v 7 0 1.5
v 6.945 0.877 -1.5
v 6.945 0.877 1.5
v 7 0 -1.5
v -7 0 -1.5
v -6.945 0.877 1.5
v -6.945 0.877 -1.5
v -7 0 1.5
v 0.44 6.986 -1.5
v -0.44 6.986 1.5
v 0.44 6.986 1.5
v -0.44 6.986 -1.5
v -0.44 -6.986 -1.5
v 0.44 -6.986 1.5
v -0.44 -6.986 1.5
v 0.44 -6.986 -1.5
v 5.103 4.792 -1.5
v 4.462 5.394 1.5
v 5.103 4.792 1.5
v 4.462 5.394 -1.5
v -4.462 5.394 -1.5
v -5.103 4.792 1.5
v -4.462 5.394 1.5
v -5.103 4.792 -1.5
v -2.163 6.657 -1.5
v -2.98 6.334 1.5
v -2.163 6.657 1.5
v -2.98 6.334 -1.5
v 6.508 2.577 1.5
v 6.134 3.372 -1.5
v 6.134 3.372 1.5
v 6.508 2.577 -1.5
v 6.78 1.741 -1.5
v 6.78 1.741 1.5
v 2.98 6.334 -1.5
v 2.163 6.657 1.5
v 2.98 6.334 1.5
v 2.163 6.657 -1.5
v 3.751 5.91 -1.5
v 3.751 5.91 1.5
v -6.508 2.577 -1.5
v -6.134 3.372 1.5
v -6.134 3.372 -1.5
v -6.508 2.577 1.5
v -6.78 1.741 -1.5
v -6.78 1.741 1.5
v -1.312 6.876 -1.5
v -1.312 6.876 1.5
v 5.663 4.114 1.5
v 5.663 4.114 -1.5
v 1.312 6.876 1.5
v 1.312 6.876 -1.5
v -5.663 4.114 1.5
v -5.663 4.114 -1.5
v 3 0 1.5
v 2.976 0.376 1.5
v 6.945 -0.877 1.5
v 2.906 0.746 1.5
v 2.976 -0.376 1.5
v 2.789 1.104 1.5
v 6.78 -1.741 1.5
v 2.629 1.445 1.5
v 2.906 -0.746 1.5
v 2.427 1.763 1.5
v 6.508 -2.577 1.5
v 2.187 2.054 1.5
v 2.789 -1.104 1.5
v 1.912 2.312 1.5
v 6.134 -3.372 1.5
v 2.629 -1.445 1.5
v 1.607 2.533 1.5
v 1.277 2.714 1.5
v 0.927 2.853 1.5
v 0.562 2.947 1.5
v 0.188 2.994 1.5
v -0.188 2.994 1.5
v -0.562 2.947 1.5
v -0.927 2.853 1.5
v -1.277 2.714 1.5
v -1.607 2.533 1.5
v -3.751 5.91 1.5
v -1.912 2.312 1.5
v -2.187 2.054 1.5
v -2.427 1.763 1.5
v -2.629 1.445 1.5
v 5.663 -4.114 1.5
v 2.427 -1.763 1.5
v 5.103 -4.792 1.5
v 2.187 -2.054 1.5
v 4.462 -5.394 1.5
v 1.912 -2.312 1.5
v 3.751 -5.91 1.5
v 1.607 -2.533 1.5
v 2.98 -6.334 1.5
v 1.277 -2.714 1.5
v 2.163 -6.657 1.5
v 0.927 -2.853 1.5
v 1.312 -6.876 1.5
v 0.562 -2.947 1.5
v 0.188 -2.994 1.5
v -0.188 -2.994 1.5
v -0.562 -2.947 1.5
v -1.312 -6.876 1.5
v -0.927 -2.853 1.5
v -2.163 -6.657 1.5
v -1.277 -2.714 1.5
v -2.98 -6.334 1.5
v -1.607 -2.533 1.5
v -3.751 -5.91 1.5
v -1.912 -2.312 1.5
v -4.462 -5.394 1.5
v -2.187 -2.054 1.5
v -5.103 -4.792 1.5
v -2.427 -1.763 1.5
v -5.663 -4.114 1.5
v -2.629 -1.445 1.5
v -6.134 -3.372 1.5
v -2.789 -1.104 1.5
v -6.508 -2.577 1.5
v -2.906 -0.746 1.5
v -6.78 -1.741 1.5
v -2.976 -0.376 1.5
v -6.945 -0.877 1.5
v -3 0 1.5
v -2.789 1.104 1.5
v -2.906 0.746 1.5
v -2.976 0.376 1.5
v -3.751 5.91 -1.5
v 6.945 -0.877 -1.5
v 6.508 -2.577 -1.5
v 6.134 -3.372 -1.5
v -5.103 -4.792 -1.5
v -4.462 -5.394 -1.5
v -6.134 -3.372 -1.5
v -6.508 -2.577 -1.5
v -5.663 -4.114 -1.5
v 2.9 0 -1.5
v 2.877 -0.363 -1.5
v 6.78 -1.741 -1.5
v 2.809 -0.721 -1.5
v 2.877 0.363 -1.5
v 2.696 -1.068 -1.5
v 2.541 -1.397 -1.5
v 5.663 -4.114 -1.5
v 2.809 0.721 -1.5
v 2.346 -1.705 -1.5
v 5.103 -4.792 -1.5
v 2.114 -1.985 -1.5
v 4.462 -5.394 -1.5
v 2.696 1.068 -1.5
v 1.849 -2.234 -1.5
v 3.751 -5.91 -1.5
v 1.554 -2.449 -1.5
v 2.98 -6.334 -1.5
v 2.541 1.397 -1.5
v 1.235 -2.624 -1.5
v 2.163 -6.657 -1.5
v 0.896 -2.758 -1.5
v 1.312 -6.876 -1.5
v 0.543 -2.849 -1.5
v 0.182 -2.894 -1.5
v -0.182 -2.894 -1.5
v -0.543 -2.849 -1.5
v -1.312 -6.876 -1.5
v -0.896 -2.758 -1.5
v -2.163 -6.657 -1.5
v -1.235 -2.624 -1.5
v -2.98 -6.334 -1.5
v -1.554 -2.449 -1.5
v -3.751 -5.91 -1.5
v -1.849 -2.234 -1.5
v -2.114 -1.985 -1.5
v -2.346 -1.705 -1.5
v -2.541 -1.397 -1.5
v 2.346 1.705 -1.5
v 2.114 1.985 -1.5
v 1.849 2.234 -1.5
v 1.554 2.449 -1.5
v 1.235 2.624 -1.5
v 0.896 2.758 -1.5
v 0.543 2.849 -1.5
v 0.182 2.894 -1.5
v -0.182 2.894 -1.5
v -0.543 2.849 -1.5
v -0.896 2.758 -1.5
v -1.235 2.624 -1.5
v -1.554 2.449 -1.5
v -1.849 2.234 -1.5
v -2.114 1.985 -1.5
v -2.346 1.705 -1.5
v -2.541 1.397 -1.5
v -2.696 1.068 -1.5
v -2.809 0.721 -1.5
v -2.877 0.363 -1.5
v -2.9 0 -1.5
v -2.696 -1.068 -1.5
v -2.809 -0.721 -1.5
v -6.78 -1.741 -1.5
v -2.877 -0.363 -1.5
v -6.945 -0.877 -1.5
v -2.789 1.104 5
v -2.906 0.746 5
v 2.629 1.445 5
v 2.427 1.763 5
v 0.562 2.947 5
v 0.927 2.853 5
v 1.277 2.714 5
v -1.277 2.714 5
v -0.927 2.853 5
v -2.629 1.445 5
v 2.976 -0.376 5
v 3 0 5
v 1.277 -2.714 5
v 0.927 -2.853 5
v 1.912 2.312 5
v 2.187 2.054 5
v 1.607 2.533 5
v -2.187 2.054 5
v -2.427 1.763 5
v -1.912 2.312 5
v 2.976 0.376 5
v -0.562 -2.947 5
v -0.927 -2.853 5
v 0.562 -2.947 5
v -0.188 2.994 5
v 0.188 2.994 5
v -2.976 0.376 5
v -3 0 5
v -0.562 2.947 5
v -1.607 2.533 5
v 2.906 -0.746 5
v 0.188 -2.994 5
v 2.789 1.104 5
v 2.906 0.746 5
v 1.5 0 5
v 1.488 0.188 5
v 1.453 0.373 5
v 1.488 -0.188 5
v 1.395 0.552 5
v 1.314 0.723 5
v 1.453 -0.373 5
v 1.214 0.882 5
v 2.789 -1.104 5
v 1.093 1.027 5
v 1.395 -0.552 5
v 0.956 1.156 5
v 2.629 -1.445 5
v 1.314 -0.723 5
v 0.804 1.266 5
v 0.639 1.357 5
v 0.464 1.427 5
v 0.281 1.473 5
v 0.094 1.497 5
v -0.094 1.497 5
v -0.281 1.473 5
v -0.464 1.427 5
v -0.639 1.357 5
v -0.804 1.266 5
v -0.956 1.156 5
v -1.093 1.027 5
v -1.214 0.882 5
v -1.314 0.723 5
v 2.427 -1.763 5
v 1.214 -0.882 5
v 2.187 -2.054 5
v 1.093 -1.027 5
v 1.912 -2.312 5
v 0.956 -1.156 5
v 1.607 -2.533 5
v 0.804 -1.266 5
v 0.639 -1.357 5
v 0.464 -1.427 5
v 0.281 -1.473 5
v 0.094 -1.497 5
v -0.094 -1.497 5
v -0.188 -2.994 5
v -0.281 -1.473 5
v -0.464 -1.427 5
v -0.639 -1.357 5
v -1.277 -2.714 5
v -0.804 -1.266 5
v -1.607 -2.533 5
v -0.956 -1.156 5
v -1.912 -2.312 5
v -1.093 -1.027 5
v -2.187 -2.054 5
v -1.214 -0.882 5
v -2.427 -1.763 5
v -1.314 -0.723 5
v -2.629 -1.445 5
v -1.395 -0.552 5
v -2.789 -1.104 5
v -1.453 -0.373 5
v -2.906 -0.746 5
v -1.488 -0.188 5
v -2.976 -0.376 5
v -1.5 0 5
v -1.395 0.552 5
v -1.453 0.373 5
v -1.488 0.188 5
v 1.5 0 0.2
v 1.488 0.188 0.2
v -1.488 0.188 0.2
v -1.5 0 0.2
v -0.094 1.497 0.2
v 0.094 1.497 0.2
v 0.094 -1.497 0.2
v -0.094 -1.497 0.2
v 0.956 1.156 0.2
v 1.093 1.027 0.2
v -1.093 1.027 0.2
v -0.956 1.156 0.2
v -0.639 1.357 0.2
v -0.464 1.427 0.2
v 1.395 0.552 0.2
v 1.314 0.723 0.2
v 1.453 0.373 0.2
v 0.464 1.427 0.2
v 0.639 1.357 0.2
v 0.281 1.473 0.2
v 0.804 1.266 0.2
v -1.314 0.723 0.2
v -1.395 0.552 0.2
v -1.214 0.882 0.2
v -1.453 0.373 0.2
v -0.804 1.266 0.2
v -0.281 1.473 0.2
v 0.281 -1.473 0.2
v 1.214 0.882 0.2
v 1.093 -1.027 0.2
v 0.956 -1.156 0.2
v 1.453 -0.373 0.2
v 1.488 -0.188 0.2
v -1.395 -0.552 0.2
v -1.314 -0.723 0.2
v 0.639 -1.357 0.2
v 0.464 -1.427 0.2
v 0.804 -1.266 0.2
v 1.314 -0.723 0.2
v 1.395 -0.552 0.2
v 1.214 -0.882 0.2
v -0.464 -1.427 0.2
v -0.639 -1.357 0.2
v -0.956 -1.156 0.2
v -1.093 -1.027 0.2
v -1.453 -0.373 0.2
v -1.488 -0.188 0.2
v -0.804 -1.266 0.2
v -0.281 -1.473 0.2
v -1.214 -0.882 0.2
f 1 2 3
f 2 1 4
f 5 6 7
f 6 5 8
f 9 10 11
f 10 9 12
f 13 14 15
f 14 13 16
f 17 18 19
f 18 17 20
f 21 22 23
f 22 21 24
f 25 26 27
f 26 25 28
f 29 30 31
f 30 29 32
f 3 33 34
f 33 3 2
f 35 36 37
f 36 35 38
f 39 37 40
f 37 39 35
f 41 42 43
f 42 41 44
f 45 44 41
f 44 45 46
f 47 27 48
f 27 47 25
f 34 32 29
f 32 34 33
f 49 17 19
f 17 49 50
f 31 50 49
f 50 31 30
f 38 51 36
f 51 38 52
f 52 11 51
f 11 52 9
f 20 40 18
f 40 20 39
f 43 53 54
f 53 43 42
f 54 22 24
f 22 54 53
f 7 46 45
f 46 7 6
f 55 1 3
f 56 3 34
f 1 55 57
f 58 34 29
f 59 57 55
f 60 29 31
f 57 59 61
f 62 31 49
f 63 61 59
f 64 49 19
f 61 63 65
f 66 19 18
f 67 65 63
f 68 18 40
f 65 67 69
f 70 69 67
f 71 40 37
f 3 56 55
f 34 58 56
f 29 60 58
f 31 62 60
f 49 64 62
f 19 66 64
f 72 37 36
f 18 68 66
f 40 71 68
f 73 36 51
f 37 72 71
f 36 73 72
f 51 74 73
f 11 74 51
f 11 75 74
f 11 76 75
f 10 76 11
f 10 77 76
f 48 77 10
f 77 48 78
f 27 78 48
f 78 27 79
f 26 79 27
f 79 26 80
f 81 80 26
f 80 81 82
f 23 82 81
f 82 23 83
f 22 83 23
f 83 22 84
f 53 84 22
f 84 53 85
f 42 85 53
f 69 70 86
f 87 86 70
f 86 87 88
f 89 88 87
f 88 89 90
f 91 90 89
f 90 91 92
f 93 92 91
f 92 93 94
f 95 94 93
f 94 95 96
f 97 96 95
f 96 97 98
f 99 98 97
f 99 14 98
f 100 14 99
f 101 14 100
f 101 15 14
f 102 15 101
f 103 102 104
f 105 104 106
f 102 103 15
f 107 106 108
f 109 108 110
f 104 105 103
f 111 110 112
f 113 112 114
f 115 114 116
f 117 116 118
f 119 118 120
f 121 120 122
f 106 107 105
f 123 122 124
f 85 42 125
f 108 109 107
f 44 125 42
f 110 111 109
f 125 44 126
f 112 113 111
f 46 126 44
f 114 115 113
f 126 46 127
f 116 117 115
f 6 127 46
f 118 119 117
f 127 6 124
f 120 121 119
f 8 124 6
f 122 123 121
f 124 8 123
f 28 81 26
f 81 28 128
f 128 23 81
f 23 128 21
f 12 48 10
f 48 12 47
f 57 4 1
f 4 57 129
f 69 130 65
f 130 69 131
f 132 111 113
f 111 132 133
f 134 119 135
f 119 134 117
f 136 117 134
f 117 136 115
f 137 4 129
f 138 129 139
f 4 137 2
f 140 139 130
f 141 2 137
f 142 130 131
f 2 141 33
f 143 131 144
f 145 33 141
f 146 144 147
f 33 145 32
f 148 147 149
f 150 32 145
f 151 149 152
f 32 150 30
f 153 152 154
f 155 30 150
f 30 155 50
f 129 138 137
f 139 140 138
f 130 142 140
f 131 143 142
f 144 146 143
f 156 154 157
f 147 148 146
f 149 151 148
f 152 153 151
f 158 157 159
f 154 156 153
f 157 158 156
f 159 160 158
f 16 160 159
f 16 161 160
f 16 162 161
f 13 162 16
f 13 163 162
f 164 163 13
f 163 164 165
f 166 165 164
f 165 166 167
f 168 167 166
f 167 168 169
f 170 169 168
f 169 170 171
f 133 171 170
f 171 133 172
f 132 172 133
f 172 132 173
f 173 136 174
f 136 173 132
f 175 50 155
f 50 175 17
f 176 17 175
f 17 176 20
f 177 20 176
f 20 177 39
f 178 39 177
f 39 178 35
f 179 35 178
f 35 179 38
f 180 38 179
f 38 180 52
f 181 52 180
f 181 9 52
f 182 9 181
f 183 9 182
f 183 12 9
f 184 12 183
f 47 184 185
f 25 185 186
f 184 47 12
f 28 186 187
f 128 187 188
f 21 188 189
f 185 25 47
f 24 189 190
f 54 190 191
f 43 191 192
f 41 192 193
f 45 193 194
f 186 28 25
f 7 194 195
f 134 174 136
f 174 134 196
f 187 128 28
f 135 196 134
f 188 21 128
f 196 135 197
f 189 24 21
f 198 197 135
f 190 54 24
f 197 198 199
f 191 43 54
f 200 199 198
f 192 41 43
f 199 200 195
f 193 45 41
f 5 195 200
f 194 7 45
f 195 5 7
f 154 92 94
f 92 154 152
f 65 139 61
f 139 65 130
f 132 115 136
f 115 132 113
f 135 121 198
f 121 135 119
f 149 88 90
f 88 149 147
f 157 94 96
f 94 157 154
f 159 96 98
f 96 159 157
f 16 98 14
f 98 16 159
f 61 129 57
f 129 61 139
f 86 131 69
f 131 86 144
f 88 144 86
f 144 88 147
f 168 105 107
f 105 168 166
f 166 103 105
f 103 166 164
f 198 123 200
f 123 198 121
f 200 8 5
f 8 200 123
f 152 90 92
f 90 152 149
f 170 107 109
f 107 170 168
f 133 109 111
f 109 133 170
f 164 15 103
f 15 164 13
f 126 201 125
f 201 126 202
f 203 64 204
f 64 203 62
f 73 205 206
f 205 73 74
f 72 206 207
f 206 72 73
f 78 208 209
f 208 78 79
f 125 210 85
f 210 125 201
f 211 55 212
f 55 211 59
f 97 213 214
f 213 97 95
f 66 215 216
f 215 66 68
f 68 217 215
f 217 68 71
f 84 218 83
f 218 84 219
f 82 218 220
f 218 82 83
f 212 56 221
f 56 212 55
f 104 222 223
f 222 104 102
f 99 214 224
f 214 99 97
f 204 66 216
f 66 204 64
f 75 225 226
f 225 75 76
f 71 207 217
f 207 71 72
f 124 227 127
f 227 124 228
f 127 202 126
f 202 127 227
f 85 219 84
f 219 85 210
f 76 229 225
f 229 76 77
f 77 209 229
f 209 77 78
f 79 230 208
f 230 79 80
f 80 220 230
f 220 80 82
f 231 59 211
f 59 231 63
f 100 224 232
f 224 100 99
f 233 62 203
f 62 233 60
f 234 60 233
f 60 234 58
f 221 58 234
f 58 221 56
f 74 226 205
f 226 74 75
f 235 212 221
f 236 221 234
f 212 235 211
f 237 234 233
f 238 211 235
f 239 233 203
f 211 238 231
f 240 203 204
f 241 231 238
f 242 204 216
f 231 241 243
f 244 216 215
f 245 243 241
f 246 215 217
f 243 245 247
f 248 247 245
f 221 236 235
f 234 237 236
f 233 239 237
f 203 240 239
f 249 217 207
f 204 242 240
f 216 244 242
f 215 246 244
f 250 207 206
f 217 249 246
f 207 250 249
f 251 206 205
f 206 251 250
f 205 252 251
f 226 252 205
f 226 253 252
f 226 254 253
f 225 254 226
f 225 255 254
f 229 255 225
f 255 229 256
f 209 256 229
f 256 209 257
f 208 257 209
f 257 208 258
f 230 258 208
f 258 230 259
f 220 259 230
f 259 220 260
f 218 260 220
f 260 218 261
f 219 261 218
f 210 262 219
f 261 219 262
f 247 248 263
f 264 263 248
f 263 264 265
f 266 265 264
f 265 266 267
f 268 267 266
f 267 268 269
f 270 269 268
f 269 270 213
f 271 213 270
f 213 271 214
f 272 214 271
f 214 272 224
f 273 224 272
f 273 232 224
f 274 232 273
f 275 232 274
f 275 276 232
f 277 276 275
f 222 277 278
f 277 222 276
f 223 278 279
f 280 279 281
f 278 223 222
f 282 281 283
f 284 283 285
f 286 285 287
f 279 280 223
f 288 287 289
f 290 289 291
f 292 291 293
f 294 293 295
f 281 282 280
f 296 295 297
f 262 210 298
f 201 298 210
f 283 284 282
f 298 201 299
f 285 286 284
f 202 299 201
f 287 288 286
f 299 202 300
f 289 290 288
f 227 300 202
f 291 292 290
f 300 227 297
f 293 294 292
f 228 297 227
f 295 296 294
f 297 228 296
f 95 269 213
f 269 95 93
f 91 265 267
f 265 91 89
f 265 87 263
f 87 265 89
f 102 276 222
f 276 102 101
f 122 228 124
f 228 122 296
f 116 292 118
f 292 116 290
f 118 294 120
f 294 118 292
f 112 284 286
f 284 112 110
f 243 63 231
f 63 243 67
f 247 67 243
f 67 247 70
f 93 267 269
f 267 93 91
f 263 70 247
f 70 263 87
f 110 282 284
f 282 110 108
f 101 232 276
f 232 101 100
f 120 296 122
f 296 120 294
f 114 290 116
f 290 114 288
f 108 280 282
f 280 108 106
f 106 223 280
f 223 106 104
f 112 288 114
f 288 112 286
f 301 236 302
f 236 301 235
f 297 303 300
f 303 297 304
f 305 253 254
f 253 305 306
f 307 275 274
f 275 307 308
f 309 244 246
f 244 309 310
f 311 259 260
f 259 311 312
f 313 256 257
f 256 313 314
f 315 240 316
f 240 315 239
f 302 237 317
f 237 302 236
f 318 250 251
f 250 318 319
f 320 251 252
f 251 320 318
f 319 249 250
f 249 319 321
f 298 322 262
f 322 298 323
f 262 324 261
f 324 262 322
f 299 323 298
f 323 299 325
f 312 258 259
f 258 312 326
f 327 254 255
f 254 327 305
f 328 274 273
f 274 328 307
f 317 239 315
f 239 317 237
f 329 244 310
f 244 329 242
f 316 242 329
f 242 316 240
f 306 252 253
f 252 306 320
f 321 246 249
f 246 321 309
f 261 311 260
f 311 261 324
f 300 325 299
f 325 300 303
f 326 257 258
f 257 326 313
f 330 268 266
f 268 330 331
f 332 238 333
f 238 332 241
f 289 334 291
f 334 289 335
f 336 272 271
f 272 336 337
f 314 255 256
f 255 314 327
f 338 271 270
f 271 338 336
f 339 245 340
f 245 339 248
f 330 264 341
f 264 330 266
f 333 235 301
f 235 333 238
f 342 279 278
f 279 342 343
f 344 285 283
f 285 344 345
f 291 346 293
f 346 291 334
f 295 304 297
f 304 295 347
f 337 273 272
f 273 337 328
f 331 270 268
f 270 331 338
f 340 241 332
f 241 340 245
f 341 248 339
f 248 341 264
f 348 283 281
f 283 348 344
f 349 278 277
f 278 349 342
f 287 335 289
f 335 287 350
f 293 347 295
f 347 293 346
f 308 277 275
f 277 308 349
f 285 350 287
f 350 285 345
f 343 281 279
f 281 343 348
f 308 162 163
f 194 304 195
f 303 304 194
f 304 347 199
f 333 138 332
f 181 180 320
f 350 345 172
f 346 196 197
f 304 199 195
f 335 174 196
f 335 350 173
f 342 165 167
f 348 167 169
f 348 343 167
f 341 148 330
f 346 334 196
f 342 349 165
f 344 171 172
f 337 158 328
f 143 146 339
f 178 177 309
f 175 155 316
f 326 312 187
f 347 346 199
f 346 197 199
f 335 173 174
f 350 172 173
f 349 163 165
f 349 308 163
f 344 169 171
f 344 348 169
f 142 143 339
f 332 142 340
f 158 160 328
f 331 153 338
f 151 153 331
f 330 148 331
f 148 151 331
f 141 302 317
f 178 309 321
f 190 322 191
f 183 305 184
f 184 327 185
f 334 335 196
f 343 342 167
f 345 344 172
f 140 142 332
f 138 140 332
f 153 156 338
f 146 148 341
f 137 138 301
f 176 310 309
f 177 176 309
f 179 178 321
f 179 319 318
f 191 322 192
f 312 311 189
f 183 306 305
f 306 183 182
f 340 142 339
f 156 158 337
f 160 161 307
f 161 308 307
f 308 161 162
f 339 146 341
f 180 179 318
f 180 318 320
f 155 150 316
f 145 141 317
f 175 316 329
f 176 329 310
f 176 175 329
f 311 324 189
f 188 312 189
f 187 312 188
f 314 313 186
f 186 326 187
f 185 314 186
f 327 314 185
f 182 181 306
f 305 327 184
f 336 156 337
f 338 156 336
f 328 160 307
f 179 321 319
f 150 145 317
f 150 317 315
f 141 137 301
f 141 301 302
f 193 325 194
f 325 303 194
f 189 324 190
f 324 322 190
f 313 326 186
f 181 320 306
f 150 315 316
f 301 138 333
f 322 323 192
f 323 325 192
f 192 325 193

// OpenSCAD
$fn = 50;


difference() {
	union() {
		translate(v = [0, 0, -1.5000000000]) {
			rotate(a = [0, 0, 0]) {
				cylinder(h = 3, r = 7.0000000000);
			}
		}
		translate(v = [0, 0, -1.5000000000]) {
			rotate(a = [0, 0, 0]) {
				cylinder(h = 6.5000000000, r = 3.0000000000);
			}
		}
	}
	union() {
		translate(v = [0, 0, -125.0000000000]) {
			rotate(a = [0, 0, 0]) {
				cylinder(h = 250, r = 1.5000000000);
			}
		}
		#translate(v = [0, 0, 0.2000000000]) {
			rotate(a = [0, 180, 0]) {
				cylinder(h = 1.7000000000, r1 = 1.5000000000, r2 = 2.9000000000);
			}
		}
		#translate(v = [0, 0, 5.0000000000]) {
			rotate(a = [0, 180, 0]) {
				cylinder(h = 6.5000000000, r = 1.5000000000);
			}
		}
	}
}
